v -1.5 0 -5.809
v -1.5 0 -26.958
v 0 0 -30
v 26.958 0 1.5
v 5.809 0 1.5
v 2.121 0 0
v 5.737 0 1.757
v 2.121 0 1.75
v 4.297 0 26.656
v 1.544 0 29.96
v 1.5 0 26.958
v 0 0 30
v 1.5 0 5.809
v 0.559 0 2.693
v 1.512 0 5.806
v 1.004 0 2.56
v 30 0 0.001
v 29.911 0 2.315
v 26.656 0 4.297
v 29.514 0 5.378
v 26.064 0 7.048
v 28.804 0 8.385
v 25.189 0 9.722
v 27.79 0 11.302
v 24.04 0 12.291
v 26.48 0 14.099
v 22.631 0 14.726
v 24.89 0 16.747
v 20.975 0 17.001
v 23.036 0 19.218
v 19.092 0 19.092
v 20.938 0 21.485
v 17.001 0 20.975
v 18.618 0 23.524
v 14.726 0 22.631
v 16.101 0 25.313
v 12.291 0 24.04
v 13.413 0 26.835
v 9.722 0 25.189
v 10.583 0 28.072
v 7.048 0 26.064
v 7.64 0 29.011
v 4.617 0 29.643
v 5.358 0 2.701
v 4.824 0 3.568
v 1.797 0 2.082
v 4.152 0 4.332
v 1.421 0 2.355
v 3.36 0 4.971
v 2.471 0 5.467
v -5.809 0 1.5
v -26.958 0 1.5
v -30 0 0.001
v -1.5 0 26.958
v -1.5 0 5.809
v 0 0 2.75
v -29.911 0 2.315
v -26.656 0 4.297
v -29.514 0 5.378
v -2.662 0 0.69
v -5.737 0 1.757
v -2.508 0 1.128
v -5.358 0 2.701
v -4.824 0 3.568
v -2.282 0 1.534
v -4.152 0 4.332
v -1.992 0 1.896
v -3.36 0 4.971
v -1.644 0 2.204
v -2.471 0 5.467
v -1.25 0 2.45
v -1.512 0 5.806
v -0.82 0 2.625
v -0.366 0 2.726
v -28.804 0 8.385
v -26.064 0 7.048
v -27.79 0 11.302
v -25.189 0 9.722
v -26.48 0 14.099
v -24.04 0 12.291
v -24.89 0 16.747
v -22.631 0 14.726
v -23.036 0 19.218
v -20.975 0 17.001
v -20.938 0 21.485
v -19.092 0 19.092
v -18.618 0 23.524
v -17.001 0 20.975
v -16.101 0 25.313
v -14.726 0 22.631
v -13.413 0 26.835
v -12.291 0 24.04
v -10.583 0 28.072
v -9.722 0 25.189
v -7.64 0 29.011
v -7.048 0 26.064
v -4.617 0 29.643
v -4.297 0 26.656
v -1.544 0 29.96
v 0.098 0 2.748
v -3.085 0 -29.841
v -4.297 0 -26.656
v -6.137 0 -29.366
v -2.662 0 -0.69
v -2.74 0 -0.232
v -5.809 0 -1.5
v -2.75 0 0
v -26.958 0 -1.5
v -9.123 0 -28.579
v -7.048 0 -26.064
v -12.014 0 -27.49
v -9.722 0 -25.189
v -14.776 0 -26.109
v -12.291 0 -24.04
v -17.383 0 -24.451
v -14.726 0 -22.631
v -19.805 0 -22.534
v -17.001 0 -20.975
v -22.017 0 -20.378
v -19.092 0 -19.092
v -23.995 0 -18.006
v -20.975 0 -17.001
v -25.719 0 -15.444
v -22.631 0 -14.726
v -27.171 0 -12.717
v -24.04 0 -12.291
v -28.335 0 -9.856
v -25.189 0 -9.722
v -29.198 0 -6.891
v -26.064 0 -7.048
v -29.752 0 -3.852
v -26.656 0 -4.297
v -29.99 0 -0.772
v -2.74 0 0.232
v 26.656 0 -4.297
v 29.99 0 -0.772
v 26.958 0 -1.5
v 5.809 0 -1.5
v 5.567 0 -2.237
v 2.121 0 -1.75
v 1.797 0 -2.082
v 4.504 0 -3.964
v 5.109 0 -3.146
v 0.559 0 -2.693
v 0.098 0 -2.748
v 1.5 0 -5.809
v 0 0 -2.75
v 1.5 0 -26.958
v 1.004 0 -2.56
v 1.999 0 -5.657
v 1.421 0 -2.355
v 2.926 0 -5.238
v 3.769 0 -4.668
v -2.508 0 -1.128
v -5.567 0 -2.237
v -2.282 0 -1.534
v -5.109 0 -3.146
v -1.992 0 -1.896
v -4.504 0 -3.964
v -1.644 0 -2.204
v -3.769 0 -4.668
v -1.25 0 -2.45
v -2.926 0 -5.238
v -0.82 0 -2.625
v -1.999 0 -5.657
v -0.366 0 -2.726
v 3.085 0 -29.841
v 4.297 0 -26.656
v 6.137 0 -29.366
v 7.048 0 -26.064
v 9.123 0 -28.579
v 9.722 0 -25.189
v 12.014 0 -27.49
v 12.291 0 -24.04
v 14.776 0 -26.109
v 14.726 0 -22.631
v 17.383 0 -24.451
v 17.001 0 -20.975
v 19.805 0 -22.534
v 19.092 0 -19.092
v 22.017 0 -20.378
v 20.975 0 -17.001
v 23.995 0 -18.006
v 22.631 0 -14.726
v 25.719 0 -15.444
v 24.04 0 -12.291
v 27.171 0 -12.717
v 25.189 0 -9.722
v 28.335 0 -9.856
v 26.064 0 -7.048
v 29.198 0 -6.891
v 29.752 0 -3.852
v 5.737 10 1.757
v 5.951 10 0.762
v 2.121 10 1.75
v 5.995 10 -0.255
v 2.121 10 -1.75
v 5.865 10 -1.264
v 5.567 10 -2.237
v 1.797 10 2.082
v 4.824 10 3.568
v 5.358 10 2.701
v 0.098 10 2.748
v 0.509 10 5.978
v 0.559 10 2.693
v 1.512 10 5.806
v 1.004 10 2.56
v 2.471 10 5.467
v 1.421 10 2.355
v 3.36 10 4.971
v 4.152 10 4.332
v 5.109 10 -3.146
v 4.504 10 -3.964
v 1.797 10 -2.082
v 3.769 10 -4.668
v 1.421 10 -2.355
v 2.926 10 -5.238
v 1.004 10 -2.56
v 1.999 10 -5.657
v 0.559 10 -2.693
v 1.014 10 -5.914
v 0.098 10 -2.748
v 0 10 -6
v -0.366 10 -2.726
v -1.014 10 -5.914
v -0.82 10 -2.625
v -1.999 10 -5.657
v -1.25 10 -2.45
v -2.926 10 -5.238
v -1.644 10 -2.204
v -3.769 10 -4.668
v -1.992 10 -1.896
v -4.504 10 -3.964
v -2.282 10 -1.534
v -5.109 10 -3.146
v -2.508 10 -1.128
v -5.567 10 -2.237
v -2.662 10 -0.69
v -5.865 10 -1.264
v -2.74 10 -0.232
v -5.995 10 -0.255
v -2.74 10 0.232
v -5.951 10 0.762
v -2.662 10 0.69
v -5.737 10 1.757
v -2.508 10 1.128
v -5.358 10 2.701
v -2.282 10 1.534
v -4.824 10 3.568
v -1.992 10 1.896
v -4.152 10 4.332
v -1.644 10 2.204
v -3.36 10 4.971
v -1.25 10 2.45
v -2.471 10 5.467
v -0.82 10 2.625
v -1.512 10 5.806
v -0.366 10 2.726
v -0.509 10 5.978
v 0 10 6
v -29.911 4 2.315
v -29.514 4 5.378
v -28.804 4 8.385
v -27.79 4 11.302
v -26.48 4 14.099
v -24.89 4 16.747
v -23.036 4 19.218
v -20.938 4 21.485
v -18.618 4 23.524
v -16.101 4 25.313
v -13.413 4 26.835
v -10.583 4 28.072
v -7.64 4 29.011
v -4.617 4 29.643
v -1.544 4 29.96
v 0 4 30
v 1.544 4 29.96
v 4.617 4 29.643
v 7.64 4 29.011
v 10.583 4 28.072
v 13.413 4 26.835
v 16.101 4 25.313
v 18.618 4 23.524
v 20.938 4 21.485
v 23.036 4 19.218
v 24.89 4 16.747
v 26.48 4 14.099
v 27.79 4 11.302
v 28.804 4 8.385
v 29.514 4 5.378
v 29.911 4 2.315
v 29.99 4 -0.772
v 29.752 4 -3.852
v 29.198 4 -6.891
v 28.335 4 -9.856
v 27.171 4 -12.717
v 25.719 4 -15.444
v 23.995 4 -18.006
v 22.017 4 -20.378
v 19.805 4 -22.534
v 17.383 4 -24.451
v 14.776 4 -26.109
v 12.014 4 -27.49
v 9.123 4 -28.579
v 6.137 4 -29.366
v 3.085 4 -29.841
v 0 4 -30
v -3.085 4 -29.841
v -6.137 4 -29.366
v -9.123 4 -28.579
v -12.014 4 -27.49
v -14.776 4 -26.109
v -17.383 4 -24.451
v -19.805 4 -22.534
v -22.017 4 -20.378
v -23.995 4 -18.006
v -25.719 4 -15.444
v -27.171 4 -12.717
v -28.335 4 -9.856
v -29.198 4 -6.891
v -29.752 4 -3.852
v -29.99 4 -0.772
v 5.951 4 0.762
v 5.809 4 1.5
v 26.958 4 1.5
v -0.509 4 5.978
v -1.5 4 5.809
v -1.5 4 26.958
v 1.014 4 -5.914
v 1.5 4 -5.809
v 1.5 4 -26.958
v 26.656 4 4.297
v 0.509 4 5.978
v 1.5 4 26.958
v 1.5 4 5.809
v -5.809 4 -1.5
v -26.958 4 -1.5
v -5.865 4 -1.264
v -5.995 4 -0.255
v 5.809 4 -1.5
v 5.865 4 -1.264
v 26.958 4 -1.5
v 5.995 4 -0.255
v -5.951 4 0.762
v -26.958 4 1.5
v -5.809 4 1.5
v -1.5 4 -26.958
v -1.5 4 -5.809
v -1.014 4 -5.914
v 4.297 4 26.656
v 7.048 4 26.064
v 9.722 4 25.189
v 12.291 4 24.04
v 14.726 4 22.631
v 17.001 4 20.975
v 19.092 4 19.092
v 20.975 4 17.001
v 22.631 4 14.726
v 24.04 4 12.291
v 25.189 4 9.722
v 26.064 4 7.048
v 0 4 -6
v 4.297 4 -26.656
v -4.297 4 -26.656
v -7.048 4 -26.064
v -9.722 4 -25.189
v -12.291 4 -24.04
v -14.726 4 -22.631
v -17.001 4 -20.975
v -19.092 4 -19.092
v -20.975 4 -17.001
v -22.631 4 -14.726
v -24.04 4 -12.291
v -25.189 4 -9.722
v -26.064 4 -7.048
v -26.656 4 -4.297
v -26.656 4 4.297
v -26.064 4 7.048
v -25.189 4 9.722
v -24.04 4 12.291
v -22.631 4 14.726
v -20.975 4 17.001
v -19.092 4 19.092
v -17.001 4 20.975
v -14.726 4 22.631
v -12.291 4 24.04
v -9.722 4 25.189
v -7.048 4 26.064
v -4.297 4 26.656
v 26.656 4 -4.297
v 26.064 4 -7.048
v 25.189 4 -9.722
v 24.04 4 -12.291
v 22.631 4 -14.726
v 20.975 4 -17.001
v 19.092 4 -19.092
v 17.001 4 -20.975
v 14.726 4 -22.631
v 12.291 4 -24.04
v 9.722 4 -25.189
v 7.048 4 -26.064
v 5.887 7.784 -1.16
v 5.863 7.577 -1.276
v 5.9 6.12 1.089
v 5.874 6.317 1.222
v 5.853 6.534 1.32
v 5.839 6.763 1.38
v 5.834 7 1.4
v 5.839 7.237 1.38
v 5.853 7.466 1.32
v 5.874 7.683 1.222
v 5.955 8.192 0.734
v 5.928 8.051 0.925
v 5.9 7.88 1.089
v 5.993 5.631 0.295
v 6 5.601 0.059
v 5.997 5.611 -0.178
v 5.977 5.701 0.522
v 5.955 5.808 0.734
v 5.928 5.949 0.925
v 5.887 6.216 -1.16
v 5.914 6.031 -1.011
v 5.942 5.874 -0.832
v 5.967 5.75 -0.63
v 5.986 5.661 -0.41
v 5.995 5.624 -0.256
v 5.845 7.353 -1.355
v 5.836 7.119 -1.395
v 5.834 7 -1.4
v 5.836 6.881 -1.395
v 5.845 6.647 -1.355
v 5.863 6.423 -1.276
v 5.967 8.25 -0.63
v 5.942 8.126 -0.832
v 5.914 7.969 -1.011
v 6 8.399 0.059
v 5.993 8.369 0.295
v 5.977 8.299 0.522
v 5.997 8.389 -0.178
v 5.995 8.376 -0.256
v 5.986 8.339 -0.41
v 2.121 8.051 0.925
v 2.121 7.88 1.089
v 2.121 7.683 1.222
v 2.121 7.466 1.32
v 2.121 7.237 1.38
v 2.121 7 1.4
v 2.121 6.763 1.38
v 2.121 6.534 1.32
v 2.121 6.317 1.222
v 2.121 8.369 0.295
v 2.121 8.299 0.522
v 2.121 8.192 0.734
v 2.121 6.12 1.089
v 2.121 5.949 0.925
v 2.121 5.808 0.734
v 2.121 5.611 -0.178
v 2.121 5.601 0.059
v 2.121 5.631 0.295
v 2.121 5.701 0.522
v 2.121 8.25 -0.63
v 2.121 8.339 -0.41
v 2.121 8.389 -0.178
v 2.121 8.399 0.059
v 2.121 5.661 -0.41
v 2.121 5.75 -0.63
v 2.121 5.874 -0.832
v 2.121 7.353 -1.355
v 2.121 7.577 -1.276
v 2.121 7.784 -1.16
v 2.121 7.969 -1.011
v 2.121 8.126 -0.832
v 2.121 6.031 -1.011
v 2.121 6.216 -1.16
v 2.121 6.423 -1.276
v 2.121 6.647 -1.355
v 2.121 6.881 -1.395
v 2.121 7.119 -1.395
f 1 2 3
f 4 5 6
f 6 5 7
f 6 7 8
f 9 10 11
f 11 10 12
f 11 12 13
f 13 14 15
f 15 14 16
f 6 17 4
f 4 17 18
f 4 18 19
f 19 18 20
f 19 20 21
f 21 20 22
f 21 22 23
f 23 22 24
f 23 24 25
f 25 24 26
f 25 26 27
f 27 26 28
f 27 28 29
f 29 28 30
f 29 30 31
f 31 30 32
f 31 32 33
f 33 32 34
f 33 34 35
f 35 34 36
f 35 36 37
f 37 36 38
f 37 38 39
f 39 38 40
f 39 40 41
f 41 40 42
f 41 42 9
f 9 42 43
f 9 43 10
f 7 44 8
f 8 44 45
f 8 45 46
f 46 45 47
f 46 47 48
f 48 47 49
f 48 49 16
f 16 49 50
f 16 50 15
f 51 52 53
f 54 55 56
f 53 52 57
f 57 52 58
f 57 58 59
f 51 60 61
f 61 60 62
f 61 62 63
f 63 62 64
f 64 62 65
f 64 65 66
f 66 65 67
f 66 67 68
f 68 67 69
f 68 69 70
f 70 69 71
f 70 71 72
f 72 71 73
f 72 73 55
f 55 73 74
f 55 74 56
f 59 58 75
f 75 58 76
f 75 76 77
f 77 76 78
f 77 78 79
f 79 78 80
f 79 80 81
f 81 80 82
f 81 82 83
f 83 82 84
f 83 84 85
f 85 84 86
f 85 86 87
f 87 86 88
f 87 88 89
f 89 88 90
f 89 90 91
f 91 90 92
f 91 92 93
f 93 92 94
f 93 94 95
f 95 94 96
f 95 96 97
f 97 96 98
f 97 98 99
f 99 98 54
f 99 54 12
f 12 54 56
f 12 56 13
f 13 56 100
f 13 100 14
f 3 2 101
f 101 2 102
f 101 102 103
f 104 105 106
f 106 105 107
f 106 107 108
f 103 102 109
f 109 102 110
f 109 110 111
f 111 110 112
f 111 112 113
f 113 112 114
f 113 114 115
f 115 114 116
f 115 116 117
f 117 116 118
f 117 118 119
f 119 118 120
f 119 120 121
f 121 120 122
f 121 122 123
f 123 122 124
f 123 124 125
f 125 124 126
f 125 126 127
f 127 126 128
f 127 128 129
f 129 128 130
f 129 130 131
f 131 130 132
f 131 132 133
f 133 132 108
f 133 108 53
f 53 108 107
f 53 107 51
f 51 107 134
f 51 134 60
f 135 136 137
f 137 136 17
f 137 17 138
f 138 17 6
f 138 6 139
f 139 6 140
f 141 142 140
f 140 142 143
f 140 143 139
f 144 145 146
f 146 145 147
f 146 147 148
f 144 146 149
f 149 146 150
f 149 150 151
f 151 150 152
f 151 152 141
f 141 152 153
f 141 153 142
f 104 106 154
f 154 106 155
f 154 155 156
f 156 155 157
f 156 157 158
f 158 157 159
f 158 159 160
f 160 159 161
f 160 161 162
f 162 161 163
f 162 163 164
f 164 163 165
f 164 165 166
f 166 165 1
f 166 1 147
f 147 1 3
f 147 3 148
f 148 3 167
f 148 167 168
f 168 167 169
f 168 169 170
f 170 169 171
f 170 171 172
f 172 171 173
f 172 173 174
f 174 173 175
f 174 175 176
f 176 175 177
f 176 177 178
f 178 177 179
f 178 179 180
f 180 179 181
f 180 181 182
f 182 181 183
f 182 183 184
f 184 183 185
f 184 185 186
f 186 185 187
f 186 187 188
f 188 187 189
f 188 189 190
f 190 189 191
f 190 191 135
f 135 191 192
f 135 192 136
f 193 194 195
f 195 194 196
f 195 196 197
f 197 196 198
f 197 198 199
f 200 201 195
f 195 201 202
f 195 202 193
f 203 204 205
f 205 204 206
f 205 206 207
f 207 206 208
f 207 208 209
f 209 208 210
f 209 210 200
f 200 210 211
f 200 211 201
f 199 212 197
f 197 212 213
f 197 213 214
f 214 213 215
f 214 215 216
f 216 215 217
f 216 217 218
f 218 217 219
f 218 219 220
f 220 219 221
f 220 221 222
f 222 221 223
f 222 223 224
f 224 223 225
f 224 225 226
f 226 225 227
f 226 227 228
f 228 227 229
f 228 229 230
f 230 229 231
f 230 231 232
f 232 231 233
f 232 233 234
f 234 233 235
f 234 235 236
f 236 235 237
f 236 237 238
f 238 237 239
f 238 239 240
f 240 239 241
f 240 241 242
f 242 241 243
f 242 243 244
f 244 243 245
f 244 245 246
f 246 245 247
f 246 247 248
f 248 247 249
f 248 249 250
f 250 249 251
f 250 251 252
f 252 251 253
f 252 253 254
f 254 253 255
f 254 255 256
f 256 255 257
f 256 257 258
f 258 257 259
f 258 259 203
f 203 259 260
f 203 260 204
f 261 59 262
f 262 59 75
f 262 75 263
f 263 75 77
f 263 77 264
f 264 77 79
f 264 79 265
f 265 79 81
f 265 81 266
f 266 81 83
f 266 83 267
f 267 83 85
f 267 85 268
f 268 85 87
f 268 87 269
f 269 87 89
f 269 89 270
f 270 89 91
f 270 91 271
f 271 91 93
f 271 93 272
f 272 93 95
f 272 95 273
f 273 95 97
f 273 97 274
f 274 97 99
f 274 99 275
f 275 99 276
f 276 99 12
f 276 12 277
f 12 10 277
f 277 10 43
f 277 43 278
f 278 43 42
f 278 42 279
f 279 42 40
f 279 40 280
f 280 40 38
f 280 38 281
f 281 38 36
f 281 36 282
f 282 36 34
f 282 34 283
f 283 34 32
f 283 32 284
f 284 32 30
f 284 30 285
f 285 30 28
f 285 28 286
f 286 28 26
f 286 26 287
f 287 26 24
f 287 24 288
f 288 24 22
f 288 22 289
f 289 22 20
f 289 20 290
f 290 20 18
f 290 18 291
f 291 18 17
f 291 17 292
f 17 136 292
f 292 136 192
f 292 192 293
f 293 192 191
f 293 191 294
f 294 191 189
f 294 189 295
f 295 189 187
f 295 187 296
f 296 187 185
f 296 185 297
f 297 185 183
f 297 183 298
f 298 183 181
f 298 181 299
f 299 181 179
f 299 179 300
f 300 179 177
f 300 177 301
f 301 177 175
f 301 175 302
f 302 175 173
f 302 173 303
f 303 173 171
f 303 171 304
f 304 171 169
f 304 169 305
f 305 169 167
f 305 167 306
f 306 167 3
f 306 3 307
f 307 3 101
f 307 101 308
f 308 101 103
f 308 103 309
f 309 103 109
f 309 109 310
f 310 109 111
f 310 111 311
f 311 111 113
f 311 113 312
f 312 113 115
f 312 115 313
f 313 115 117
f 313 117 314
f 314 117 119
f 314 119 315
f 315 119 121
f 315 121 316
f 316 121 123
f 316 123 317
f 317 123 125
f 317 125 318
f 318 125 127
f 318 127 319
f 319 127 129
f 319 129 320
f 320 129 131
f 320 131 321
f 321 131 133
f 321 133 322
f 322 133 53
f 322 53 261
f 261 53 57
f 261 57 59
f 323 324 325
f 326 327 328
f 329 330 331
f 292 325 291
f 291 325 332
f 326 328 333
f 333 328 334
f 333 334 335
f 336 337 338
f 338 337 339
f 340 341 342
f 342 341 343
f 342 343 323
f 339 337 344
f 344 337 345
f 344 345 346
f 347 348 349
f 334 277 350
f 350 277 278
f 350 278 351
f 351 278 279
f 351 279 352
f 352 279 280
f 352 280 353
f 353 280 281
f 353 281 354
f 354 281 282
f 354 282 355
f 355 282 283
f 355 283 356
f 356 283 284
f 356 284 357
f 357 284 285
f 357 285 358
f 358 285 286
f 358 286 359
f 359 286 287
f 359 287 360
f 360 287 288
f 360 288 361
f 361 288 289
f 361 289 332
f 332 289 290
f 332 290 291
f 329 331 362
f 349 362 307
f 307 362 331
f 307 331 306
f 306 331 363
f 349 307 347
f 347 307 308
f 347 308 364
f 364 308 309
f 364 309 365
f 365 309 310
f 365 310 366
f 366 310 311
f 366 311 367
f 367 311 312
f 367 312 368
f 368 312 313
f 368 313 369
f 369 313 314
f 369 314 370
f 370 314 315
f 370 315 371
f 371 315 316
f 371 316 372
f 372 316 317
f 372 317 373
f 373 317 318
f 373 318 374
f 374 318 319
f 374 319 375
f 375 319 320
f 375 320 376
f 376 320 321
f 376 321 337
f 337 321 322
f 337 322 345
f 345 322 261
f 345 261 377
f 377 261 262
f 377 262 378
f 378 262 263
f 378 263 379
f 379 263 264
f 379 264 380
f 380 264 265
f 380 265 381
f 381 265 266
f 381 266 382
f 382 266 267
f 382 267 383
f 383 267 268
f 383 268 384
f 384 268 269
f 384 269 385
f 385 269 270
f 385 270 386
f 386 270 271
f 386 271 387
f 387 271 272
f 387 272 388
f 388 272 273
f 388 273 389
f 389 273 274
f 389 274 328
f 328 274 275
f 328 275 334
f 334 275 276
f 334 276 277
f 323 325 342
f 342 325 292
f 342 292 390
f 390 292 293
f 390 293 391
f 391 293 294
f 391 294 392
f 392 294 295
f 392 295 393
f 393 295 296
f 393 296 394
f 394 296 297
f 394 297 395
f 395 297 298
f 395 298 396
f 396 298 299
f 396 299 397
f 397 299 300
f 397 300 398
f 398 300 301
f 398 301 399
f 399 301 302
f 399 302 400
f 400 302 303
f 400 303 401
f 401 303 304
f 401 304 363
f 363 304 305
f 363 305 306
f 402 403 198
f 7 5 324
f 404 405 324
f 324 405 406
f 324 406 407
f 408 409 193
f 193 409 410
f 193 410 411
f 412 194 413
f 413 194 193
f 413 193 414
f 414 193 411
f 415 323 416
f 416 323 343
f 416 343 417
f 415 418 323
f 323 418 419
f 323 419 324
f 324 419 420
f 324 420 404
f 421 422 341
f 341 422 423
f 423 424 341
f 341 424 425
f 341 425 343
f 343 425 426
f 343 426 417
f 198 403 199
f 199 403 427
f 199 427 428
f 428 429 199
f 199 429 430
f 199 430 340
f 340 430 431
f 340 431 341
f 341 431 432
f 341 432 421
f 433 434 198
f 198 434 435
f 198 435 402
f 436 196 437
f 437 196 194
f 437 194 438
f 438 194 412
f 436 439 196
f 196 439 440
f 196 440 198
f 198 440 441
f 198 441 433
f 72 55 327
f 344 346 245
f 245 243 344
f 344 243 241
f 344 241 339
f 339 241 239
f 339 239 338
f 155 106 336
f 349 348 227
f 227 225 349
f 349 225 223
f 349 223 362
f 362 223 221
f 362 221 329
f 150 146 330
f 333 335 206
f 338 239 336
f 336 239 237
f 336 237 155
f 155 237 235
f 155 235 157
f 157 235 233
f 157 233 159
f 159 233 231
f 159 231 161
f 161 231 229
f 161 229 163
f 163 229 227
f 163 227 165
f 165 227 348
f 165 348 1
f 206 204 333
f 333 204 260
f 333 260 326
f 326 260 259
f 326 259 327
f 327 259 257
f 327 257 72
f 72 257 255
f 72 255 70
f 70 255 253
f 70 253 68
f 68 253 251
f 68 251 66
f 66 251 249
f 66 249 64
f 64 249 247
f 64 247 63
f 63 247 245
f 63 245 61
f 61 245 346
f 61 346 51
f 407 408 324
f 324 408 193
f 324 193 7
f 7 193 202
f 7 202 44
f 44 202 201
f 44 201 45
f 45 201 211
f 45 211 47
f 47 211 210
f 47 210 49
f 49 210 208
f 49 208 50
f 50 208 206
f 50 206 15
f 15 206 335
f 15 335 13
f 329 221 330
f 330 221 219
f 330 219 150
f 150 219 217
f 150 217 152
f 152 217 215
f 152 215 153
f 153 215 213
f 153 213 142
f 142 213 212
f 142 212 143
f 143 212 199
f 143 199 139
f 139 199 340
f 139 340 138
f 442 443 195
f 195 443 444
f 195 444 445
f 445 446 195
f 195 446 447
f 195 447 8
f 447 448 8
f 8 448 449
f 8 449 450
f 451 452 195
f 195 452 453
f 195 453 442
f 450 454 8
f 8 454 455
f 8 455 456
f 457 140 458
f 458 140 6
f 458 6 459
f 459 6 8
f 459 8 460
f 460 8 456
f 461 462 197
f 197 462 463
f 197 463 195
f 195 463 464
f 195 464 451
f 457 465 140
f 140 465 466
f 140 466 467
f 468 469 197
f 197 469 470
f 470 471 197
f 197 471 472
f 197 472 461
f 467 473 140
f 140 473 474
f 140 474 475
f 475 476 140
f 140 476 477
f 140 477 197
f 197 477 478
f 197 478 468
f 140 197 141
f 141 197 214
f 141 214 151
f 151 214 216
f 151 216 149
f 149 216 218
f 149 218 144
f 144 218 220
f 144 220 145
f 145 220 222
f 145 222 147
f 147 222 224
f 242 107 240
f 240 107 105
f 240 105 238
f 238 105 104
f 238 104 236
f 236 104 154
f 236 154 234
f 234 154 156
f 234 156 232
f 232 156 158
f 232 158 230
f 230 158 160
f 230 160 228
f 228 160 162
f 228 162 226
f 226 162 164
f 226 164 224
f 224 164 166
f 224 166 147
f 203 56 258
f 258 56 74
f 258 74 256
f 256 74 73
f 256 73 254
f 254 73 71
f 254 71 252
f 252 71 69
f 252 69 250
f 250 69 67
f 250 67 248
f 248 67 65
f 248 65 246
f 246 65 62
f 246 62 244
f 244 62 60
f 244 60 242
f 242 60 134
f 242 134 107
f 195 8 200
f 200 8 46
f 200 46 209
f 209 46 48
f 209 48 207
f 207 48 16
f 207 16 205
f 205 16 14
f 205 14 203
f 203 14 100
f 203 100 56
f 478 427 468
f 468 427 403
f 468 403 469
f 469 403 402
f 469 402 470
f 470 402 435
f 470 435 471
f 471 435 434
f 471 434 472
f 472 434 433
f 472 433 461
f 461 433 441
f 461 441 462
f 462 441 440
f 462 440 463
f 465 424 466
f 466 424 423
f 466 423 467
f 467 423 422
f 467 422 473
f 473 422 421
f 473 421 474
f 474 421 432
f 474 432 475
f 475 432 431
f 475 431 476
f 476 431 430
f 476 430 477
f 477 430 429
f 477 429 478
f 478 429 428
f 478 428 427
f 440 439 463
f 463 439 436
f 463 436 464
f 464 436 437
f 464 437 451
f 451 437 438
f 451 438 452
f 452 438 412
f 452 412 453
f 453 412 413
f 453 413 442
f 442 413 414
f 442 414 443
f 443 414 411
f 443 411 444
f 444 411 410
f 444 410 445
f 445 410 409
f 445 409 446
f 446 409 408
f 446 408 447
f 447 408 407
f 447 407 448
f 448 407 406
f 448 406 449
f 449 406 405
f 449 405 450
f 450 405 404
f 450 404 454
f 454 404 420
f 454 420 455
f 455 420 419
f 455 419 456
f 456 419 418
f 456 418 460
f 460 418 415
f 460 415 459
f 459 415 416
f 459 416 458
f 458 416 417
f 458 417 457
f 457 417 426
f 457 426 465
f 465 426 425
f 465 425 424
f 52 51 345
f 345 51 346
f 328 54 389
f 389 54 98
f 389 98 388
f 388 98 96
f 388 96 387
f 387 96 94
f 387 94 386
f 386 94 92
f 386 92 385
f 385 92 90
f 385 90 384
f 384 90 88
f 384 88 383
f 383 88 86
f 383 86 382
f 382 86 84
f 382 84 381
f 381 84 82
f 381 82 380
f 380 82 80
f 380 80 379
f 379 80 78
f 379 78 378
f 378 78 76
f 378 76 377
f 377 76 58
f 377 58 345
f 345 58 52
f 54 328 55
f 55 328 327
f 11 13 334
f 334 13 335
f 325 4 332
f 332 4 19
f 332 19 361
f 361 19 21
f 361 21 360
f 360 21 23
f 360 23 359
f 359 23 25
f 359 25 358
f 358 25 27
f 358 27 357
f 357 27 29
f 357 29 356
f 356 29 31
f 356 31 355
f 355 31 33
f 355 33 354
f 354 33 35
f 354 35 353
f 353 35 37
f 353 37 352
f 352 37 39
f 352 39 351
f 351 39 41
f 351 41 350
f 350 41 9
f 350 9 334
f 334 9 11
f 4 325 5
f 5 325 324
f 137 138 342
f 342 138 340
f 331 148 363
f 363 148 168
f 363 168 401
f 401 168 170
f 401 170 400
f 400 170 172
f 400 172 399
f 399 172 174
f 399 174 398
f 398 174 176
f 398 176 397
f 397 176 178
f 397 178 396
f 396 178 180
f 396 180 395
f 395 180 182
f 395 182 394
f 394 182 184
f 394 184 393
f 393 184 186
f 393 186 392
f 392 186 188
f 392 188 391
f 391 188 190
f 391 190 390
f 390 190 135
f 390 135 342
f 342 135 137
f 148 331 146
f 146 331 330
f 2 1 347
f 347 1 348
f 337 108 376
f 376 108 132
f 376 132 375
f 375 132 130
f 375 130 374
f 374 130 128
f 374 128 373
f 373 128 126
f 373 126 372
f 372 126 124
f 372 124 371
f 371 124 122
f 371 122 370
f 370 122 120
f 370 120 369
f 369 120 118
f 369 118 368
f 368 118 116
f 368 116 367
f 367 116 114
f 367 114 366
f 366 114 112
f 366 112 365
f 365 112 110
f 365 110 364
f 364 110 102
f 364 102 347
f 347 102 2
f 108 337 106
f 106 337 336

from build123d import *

# Parameters (mm, degrees)
SKETCH1_R           = 30
BOSS_EXTRUDE1_DEPTH = 4
SKETCH2_R           = 6
BOSS_EXTRUDE2_DEPTH = 6
CUT_EXTRUDE1_DEPTH  = 44.588989435
SKETCH4_R           = 1.4
CUT_EXTRUDE2_DEPTH  = 5
CUT_EXTRUDE3_DEPTH  = 44.588989458


with BuildPart() as part:
    # Sketch1 → Boss-Extrude1 (new body)
    with BuildSketch(Plane(origin=(0, 0, 0), x_dir=(1, 0, 0), z_dir=(0, 1, 0))):
        with Locations(Location((0, 0, 0), (0, 0, 270))):
            Circle(SKETCH1_R)
    extrude(amount=BOSS_EXTRUDE1_DEPTH)

    # Sketch2 → Boss-Extrude2 (add)
    with BuildSketch(Plane(origin=(0, 4, 0), x_dir=(1, 0, 0), z_dir=(0, 1, 0))):
        with Locations(Location((0, 0, 0), (0, 0, 270))):
            Circle(SKETCH2_R)
    extrude(amount=BOSS_EXTRUDE2_DEPTH)

    # Sketch3 → Cut-Extrude1 (cut, through all)
    with BuildSketch(Plane(origin=(0, 10, 0), x_dir=(1, 0, 0), z_dir=(0, 1, 0))):
        with BuildLine():
            Line((2.121320344, -1.75), (2.121320344, 1.75))
            ThreePointArc((2.121320344, 1.75), (-2.75, 0), (2.121320344, -1.75))
        make_face()
    extrude(amount=-CUT_EXTRUDE1_DEPTH, mode=Mode.SUBTRACT)

    # Sketch4 → Cut-Extrude2 (cut)
    with BuildSketch(Plane.ZY.offset(-2.121320344)):
        with Locations((0, 7)):
            Circle(SKETCH4_R)
    extrude(amount=-CUT_EXTRUDE2_DEPTH, mode=Mode.SUBTRACT)

    # Sketch5 → Cut-Extrude3 (cut, through all)
    with BuildSketch(Plane(origin=(0, 0, 0), x_dir=(-1, 0, 0), z_dir=(0, -1, 0))):
        with BuildLine():
            ThreePointArc((1.5, -26.958301133), (19.091883092, -19.091883092), (26.958301133, -1.5))
            Line((26.958301133, -1.5), (5.809475019, -1.5))
            ThreePointArc((5.809475019, -1.5), (4.242640687, -4.242640687), (1.5, -5.809475019))
            Line((1.5, -5.809475019), (1.5, -26.958301133))
        make_face()
        with BuildLine():
            ThreePointArc((-26.958301133, -1.5), (-19.091883092, -19.091883092), (-1.5, -26.958301133))
            Line((-1.5, -26.958301133), (-1.5, -5.809475019))
            ThreePointArc((-1.5, -5.809475019), (-4.242640687, -4.242640687), (-5.809475019, -1.5))
            Line((-5.809475019, -1.5), (-26.958301133, -1.5))
        make_face()
        with BuildLine():
            Line((-1.5, 5.809475019), (-1.5, 26.958301133))
            ThreePointArc((-1.5, 26.958301133), (-19.091883092, 19.091883092), (-26.958301133, 1.5))
            Line((-26.958301133, 1.5), (-5.809475019, 1.5))
            ThreePointArc((-5.809475019, 1.5), (-4.242640687, 4.242640687), (-1.5, 5.809475019))
        make_face()
        with BuildLine():
            Line((5.809475019, 1.5), (26.958301133, 1.5))
            ThreePointArc((26.958301133, 1.5), (19.091883092, 19.091883092), (1.5, 26.958301133))
            Line((1.5, 26.958301133), (1.5, 5.809475019))
            ThreePointArc((1.5, 5.809475019), (4.242640687, 4.242640687), (5.809475019, 1.5))
        make_face()
    extrude(amount=-CUT_EXTRUDE3_DEPTH, mode=Mode.SUBTRACT)


solid = part.part
